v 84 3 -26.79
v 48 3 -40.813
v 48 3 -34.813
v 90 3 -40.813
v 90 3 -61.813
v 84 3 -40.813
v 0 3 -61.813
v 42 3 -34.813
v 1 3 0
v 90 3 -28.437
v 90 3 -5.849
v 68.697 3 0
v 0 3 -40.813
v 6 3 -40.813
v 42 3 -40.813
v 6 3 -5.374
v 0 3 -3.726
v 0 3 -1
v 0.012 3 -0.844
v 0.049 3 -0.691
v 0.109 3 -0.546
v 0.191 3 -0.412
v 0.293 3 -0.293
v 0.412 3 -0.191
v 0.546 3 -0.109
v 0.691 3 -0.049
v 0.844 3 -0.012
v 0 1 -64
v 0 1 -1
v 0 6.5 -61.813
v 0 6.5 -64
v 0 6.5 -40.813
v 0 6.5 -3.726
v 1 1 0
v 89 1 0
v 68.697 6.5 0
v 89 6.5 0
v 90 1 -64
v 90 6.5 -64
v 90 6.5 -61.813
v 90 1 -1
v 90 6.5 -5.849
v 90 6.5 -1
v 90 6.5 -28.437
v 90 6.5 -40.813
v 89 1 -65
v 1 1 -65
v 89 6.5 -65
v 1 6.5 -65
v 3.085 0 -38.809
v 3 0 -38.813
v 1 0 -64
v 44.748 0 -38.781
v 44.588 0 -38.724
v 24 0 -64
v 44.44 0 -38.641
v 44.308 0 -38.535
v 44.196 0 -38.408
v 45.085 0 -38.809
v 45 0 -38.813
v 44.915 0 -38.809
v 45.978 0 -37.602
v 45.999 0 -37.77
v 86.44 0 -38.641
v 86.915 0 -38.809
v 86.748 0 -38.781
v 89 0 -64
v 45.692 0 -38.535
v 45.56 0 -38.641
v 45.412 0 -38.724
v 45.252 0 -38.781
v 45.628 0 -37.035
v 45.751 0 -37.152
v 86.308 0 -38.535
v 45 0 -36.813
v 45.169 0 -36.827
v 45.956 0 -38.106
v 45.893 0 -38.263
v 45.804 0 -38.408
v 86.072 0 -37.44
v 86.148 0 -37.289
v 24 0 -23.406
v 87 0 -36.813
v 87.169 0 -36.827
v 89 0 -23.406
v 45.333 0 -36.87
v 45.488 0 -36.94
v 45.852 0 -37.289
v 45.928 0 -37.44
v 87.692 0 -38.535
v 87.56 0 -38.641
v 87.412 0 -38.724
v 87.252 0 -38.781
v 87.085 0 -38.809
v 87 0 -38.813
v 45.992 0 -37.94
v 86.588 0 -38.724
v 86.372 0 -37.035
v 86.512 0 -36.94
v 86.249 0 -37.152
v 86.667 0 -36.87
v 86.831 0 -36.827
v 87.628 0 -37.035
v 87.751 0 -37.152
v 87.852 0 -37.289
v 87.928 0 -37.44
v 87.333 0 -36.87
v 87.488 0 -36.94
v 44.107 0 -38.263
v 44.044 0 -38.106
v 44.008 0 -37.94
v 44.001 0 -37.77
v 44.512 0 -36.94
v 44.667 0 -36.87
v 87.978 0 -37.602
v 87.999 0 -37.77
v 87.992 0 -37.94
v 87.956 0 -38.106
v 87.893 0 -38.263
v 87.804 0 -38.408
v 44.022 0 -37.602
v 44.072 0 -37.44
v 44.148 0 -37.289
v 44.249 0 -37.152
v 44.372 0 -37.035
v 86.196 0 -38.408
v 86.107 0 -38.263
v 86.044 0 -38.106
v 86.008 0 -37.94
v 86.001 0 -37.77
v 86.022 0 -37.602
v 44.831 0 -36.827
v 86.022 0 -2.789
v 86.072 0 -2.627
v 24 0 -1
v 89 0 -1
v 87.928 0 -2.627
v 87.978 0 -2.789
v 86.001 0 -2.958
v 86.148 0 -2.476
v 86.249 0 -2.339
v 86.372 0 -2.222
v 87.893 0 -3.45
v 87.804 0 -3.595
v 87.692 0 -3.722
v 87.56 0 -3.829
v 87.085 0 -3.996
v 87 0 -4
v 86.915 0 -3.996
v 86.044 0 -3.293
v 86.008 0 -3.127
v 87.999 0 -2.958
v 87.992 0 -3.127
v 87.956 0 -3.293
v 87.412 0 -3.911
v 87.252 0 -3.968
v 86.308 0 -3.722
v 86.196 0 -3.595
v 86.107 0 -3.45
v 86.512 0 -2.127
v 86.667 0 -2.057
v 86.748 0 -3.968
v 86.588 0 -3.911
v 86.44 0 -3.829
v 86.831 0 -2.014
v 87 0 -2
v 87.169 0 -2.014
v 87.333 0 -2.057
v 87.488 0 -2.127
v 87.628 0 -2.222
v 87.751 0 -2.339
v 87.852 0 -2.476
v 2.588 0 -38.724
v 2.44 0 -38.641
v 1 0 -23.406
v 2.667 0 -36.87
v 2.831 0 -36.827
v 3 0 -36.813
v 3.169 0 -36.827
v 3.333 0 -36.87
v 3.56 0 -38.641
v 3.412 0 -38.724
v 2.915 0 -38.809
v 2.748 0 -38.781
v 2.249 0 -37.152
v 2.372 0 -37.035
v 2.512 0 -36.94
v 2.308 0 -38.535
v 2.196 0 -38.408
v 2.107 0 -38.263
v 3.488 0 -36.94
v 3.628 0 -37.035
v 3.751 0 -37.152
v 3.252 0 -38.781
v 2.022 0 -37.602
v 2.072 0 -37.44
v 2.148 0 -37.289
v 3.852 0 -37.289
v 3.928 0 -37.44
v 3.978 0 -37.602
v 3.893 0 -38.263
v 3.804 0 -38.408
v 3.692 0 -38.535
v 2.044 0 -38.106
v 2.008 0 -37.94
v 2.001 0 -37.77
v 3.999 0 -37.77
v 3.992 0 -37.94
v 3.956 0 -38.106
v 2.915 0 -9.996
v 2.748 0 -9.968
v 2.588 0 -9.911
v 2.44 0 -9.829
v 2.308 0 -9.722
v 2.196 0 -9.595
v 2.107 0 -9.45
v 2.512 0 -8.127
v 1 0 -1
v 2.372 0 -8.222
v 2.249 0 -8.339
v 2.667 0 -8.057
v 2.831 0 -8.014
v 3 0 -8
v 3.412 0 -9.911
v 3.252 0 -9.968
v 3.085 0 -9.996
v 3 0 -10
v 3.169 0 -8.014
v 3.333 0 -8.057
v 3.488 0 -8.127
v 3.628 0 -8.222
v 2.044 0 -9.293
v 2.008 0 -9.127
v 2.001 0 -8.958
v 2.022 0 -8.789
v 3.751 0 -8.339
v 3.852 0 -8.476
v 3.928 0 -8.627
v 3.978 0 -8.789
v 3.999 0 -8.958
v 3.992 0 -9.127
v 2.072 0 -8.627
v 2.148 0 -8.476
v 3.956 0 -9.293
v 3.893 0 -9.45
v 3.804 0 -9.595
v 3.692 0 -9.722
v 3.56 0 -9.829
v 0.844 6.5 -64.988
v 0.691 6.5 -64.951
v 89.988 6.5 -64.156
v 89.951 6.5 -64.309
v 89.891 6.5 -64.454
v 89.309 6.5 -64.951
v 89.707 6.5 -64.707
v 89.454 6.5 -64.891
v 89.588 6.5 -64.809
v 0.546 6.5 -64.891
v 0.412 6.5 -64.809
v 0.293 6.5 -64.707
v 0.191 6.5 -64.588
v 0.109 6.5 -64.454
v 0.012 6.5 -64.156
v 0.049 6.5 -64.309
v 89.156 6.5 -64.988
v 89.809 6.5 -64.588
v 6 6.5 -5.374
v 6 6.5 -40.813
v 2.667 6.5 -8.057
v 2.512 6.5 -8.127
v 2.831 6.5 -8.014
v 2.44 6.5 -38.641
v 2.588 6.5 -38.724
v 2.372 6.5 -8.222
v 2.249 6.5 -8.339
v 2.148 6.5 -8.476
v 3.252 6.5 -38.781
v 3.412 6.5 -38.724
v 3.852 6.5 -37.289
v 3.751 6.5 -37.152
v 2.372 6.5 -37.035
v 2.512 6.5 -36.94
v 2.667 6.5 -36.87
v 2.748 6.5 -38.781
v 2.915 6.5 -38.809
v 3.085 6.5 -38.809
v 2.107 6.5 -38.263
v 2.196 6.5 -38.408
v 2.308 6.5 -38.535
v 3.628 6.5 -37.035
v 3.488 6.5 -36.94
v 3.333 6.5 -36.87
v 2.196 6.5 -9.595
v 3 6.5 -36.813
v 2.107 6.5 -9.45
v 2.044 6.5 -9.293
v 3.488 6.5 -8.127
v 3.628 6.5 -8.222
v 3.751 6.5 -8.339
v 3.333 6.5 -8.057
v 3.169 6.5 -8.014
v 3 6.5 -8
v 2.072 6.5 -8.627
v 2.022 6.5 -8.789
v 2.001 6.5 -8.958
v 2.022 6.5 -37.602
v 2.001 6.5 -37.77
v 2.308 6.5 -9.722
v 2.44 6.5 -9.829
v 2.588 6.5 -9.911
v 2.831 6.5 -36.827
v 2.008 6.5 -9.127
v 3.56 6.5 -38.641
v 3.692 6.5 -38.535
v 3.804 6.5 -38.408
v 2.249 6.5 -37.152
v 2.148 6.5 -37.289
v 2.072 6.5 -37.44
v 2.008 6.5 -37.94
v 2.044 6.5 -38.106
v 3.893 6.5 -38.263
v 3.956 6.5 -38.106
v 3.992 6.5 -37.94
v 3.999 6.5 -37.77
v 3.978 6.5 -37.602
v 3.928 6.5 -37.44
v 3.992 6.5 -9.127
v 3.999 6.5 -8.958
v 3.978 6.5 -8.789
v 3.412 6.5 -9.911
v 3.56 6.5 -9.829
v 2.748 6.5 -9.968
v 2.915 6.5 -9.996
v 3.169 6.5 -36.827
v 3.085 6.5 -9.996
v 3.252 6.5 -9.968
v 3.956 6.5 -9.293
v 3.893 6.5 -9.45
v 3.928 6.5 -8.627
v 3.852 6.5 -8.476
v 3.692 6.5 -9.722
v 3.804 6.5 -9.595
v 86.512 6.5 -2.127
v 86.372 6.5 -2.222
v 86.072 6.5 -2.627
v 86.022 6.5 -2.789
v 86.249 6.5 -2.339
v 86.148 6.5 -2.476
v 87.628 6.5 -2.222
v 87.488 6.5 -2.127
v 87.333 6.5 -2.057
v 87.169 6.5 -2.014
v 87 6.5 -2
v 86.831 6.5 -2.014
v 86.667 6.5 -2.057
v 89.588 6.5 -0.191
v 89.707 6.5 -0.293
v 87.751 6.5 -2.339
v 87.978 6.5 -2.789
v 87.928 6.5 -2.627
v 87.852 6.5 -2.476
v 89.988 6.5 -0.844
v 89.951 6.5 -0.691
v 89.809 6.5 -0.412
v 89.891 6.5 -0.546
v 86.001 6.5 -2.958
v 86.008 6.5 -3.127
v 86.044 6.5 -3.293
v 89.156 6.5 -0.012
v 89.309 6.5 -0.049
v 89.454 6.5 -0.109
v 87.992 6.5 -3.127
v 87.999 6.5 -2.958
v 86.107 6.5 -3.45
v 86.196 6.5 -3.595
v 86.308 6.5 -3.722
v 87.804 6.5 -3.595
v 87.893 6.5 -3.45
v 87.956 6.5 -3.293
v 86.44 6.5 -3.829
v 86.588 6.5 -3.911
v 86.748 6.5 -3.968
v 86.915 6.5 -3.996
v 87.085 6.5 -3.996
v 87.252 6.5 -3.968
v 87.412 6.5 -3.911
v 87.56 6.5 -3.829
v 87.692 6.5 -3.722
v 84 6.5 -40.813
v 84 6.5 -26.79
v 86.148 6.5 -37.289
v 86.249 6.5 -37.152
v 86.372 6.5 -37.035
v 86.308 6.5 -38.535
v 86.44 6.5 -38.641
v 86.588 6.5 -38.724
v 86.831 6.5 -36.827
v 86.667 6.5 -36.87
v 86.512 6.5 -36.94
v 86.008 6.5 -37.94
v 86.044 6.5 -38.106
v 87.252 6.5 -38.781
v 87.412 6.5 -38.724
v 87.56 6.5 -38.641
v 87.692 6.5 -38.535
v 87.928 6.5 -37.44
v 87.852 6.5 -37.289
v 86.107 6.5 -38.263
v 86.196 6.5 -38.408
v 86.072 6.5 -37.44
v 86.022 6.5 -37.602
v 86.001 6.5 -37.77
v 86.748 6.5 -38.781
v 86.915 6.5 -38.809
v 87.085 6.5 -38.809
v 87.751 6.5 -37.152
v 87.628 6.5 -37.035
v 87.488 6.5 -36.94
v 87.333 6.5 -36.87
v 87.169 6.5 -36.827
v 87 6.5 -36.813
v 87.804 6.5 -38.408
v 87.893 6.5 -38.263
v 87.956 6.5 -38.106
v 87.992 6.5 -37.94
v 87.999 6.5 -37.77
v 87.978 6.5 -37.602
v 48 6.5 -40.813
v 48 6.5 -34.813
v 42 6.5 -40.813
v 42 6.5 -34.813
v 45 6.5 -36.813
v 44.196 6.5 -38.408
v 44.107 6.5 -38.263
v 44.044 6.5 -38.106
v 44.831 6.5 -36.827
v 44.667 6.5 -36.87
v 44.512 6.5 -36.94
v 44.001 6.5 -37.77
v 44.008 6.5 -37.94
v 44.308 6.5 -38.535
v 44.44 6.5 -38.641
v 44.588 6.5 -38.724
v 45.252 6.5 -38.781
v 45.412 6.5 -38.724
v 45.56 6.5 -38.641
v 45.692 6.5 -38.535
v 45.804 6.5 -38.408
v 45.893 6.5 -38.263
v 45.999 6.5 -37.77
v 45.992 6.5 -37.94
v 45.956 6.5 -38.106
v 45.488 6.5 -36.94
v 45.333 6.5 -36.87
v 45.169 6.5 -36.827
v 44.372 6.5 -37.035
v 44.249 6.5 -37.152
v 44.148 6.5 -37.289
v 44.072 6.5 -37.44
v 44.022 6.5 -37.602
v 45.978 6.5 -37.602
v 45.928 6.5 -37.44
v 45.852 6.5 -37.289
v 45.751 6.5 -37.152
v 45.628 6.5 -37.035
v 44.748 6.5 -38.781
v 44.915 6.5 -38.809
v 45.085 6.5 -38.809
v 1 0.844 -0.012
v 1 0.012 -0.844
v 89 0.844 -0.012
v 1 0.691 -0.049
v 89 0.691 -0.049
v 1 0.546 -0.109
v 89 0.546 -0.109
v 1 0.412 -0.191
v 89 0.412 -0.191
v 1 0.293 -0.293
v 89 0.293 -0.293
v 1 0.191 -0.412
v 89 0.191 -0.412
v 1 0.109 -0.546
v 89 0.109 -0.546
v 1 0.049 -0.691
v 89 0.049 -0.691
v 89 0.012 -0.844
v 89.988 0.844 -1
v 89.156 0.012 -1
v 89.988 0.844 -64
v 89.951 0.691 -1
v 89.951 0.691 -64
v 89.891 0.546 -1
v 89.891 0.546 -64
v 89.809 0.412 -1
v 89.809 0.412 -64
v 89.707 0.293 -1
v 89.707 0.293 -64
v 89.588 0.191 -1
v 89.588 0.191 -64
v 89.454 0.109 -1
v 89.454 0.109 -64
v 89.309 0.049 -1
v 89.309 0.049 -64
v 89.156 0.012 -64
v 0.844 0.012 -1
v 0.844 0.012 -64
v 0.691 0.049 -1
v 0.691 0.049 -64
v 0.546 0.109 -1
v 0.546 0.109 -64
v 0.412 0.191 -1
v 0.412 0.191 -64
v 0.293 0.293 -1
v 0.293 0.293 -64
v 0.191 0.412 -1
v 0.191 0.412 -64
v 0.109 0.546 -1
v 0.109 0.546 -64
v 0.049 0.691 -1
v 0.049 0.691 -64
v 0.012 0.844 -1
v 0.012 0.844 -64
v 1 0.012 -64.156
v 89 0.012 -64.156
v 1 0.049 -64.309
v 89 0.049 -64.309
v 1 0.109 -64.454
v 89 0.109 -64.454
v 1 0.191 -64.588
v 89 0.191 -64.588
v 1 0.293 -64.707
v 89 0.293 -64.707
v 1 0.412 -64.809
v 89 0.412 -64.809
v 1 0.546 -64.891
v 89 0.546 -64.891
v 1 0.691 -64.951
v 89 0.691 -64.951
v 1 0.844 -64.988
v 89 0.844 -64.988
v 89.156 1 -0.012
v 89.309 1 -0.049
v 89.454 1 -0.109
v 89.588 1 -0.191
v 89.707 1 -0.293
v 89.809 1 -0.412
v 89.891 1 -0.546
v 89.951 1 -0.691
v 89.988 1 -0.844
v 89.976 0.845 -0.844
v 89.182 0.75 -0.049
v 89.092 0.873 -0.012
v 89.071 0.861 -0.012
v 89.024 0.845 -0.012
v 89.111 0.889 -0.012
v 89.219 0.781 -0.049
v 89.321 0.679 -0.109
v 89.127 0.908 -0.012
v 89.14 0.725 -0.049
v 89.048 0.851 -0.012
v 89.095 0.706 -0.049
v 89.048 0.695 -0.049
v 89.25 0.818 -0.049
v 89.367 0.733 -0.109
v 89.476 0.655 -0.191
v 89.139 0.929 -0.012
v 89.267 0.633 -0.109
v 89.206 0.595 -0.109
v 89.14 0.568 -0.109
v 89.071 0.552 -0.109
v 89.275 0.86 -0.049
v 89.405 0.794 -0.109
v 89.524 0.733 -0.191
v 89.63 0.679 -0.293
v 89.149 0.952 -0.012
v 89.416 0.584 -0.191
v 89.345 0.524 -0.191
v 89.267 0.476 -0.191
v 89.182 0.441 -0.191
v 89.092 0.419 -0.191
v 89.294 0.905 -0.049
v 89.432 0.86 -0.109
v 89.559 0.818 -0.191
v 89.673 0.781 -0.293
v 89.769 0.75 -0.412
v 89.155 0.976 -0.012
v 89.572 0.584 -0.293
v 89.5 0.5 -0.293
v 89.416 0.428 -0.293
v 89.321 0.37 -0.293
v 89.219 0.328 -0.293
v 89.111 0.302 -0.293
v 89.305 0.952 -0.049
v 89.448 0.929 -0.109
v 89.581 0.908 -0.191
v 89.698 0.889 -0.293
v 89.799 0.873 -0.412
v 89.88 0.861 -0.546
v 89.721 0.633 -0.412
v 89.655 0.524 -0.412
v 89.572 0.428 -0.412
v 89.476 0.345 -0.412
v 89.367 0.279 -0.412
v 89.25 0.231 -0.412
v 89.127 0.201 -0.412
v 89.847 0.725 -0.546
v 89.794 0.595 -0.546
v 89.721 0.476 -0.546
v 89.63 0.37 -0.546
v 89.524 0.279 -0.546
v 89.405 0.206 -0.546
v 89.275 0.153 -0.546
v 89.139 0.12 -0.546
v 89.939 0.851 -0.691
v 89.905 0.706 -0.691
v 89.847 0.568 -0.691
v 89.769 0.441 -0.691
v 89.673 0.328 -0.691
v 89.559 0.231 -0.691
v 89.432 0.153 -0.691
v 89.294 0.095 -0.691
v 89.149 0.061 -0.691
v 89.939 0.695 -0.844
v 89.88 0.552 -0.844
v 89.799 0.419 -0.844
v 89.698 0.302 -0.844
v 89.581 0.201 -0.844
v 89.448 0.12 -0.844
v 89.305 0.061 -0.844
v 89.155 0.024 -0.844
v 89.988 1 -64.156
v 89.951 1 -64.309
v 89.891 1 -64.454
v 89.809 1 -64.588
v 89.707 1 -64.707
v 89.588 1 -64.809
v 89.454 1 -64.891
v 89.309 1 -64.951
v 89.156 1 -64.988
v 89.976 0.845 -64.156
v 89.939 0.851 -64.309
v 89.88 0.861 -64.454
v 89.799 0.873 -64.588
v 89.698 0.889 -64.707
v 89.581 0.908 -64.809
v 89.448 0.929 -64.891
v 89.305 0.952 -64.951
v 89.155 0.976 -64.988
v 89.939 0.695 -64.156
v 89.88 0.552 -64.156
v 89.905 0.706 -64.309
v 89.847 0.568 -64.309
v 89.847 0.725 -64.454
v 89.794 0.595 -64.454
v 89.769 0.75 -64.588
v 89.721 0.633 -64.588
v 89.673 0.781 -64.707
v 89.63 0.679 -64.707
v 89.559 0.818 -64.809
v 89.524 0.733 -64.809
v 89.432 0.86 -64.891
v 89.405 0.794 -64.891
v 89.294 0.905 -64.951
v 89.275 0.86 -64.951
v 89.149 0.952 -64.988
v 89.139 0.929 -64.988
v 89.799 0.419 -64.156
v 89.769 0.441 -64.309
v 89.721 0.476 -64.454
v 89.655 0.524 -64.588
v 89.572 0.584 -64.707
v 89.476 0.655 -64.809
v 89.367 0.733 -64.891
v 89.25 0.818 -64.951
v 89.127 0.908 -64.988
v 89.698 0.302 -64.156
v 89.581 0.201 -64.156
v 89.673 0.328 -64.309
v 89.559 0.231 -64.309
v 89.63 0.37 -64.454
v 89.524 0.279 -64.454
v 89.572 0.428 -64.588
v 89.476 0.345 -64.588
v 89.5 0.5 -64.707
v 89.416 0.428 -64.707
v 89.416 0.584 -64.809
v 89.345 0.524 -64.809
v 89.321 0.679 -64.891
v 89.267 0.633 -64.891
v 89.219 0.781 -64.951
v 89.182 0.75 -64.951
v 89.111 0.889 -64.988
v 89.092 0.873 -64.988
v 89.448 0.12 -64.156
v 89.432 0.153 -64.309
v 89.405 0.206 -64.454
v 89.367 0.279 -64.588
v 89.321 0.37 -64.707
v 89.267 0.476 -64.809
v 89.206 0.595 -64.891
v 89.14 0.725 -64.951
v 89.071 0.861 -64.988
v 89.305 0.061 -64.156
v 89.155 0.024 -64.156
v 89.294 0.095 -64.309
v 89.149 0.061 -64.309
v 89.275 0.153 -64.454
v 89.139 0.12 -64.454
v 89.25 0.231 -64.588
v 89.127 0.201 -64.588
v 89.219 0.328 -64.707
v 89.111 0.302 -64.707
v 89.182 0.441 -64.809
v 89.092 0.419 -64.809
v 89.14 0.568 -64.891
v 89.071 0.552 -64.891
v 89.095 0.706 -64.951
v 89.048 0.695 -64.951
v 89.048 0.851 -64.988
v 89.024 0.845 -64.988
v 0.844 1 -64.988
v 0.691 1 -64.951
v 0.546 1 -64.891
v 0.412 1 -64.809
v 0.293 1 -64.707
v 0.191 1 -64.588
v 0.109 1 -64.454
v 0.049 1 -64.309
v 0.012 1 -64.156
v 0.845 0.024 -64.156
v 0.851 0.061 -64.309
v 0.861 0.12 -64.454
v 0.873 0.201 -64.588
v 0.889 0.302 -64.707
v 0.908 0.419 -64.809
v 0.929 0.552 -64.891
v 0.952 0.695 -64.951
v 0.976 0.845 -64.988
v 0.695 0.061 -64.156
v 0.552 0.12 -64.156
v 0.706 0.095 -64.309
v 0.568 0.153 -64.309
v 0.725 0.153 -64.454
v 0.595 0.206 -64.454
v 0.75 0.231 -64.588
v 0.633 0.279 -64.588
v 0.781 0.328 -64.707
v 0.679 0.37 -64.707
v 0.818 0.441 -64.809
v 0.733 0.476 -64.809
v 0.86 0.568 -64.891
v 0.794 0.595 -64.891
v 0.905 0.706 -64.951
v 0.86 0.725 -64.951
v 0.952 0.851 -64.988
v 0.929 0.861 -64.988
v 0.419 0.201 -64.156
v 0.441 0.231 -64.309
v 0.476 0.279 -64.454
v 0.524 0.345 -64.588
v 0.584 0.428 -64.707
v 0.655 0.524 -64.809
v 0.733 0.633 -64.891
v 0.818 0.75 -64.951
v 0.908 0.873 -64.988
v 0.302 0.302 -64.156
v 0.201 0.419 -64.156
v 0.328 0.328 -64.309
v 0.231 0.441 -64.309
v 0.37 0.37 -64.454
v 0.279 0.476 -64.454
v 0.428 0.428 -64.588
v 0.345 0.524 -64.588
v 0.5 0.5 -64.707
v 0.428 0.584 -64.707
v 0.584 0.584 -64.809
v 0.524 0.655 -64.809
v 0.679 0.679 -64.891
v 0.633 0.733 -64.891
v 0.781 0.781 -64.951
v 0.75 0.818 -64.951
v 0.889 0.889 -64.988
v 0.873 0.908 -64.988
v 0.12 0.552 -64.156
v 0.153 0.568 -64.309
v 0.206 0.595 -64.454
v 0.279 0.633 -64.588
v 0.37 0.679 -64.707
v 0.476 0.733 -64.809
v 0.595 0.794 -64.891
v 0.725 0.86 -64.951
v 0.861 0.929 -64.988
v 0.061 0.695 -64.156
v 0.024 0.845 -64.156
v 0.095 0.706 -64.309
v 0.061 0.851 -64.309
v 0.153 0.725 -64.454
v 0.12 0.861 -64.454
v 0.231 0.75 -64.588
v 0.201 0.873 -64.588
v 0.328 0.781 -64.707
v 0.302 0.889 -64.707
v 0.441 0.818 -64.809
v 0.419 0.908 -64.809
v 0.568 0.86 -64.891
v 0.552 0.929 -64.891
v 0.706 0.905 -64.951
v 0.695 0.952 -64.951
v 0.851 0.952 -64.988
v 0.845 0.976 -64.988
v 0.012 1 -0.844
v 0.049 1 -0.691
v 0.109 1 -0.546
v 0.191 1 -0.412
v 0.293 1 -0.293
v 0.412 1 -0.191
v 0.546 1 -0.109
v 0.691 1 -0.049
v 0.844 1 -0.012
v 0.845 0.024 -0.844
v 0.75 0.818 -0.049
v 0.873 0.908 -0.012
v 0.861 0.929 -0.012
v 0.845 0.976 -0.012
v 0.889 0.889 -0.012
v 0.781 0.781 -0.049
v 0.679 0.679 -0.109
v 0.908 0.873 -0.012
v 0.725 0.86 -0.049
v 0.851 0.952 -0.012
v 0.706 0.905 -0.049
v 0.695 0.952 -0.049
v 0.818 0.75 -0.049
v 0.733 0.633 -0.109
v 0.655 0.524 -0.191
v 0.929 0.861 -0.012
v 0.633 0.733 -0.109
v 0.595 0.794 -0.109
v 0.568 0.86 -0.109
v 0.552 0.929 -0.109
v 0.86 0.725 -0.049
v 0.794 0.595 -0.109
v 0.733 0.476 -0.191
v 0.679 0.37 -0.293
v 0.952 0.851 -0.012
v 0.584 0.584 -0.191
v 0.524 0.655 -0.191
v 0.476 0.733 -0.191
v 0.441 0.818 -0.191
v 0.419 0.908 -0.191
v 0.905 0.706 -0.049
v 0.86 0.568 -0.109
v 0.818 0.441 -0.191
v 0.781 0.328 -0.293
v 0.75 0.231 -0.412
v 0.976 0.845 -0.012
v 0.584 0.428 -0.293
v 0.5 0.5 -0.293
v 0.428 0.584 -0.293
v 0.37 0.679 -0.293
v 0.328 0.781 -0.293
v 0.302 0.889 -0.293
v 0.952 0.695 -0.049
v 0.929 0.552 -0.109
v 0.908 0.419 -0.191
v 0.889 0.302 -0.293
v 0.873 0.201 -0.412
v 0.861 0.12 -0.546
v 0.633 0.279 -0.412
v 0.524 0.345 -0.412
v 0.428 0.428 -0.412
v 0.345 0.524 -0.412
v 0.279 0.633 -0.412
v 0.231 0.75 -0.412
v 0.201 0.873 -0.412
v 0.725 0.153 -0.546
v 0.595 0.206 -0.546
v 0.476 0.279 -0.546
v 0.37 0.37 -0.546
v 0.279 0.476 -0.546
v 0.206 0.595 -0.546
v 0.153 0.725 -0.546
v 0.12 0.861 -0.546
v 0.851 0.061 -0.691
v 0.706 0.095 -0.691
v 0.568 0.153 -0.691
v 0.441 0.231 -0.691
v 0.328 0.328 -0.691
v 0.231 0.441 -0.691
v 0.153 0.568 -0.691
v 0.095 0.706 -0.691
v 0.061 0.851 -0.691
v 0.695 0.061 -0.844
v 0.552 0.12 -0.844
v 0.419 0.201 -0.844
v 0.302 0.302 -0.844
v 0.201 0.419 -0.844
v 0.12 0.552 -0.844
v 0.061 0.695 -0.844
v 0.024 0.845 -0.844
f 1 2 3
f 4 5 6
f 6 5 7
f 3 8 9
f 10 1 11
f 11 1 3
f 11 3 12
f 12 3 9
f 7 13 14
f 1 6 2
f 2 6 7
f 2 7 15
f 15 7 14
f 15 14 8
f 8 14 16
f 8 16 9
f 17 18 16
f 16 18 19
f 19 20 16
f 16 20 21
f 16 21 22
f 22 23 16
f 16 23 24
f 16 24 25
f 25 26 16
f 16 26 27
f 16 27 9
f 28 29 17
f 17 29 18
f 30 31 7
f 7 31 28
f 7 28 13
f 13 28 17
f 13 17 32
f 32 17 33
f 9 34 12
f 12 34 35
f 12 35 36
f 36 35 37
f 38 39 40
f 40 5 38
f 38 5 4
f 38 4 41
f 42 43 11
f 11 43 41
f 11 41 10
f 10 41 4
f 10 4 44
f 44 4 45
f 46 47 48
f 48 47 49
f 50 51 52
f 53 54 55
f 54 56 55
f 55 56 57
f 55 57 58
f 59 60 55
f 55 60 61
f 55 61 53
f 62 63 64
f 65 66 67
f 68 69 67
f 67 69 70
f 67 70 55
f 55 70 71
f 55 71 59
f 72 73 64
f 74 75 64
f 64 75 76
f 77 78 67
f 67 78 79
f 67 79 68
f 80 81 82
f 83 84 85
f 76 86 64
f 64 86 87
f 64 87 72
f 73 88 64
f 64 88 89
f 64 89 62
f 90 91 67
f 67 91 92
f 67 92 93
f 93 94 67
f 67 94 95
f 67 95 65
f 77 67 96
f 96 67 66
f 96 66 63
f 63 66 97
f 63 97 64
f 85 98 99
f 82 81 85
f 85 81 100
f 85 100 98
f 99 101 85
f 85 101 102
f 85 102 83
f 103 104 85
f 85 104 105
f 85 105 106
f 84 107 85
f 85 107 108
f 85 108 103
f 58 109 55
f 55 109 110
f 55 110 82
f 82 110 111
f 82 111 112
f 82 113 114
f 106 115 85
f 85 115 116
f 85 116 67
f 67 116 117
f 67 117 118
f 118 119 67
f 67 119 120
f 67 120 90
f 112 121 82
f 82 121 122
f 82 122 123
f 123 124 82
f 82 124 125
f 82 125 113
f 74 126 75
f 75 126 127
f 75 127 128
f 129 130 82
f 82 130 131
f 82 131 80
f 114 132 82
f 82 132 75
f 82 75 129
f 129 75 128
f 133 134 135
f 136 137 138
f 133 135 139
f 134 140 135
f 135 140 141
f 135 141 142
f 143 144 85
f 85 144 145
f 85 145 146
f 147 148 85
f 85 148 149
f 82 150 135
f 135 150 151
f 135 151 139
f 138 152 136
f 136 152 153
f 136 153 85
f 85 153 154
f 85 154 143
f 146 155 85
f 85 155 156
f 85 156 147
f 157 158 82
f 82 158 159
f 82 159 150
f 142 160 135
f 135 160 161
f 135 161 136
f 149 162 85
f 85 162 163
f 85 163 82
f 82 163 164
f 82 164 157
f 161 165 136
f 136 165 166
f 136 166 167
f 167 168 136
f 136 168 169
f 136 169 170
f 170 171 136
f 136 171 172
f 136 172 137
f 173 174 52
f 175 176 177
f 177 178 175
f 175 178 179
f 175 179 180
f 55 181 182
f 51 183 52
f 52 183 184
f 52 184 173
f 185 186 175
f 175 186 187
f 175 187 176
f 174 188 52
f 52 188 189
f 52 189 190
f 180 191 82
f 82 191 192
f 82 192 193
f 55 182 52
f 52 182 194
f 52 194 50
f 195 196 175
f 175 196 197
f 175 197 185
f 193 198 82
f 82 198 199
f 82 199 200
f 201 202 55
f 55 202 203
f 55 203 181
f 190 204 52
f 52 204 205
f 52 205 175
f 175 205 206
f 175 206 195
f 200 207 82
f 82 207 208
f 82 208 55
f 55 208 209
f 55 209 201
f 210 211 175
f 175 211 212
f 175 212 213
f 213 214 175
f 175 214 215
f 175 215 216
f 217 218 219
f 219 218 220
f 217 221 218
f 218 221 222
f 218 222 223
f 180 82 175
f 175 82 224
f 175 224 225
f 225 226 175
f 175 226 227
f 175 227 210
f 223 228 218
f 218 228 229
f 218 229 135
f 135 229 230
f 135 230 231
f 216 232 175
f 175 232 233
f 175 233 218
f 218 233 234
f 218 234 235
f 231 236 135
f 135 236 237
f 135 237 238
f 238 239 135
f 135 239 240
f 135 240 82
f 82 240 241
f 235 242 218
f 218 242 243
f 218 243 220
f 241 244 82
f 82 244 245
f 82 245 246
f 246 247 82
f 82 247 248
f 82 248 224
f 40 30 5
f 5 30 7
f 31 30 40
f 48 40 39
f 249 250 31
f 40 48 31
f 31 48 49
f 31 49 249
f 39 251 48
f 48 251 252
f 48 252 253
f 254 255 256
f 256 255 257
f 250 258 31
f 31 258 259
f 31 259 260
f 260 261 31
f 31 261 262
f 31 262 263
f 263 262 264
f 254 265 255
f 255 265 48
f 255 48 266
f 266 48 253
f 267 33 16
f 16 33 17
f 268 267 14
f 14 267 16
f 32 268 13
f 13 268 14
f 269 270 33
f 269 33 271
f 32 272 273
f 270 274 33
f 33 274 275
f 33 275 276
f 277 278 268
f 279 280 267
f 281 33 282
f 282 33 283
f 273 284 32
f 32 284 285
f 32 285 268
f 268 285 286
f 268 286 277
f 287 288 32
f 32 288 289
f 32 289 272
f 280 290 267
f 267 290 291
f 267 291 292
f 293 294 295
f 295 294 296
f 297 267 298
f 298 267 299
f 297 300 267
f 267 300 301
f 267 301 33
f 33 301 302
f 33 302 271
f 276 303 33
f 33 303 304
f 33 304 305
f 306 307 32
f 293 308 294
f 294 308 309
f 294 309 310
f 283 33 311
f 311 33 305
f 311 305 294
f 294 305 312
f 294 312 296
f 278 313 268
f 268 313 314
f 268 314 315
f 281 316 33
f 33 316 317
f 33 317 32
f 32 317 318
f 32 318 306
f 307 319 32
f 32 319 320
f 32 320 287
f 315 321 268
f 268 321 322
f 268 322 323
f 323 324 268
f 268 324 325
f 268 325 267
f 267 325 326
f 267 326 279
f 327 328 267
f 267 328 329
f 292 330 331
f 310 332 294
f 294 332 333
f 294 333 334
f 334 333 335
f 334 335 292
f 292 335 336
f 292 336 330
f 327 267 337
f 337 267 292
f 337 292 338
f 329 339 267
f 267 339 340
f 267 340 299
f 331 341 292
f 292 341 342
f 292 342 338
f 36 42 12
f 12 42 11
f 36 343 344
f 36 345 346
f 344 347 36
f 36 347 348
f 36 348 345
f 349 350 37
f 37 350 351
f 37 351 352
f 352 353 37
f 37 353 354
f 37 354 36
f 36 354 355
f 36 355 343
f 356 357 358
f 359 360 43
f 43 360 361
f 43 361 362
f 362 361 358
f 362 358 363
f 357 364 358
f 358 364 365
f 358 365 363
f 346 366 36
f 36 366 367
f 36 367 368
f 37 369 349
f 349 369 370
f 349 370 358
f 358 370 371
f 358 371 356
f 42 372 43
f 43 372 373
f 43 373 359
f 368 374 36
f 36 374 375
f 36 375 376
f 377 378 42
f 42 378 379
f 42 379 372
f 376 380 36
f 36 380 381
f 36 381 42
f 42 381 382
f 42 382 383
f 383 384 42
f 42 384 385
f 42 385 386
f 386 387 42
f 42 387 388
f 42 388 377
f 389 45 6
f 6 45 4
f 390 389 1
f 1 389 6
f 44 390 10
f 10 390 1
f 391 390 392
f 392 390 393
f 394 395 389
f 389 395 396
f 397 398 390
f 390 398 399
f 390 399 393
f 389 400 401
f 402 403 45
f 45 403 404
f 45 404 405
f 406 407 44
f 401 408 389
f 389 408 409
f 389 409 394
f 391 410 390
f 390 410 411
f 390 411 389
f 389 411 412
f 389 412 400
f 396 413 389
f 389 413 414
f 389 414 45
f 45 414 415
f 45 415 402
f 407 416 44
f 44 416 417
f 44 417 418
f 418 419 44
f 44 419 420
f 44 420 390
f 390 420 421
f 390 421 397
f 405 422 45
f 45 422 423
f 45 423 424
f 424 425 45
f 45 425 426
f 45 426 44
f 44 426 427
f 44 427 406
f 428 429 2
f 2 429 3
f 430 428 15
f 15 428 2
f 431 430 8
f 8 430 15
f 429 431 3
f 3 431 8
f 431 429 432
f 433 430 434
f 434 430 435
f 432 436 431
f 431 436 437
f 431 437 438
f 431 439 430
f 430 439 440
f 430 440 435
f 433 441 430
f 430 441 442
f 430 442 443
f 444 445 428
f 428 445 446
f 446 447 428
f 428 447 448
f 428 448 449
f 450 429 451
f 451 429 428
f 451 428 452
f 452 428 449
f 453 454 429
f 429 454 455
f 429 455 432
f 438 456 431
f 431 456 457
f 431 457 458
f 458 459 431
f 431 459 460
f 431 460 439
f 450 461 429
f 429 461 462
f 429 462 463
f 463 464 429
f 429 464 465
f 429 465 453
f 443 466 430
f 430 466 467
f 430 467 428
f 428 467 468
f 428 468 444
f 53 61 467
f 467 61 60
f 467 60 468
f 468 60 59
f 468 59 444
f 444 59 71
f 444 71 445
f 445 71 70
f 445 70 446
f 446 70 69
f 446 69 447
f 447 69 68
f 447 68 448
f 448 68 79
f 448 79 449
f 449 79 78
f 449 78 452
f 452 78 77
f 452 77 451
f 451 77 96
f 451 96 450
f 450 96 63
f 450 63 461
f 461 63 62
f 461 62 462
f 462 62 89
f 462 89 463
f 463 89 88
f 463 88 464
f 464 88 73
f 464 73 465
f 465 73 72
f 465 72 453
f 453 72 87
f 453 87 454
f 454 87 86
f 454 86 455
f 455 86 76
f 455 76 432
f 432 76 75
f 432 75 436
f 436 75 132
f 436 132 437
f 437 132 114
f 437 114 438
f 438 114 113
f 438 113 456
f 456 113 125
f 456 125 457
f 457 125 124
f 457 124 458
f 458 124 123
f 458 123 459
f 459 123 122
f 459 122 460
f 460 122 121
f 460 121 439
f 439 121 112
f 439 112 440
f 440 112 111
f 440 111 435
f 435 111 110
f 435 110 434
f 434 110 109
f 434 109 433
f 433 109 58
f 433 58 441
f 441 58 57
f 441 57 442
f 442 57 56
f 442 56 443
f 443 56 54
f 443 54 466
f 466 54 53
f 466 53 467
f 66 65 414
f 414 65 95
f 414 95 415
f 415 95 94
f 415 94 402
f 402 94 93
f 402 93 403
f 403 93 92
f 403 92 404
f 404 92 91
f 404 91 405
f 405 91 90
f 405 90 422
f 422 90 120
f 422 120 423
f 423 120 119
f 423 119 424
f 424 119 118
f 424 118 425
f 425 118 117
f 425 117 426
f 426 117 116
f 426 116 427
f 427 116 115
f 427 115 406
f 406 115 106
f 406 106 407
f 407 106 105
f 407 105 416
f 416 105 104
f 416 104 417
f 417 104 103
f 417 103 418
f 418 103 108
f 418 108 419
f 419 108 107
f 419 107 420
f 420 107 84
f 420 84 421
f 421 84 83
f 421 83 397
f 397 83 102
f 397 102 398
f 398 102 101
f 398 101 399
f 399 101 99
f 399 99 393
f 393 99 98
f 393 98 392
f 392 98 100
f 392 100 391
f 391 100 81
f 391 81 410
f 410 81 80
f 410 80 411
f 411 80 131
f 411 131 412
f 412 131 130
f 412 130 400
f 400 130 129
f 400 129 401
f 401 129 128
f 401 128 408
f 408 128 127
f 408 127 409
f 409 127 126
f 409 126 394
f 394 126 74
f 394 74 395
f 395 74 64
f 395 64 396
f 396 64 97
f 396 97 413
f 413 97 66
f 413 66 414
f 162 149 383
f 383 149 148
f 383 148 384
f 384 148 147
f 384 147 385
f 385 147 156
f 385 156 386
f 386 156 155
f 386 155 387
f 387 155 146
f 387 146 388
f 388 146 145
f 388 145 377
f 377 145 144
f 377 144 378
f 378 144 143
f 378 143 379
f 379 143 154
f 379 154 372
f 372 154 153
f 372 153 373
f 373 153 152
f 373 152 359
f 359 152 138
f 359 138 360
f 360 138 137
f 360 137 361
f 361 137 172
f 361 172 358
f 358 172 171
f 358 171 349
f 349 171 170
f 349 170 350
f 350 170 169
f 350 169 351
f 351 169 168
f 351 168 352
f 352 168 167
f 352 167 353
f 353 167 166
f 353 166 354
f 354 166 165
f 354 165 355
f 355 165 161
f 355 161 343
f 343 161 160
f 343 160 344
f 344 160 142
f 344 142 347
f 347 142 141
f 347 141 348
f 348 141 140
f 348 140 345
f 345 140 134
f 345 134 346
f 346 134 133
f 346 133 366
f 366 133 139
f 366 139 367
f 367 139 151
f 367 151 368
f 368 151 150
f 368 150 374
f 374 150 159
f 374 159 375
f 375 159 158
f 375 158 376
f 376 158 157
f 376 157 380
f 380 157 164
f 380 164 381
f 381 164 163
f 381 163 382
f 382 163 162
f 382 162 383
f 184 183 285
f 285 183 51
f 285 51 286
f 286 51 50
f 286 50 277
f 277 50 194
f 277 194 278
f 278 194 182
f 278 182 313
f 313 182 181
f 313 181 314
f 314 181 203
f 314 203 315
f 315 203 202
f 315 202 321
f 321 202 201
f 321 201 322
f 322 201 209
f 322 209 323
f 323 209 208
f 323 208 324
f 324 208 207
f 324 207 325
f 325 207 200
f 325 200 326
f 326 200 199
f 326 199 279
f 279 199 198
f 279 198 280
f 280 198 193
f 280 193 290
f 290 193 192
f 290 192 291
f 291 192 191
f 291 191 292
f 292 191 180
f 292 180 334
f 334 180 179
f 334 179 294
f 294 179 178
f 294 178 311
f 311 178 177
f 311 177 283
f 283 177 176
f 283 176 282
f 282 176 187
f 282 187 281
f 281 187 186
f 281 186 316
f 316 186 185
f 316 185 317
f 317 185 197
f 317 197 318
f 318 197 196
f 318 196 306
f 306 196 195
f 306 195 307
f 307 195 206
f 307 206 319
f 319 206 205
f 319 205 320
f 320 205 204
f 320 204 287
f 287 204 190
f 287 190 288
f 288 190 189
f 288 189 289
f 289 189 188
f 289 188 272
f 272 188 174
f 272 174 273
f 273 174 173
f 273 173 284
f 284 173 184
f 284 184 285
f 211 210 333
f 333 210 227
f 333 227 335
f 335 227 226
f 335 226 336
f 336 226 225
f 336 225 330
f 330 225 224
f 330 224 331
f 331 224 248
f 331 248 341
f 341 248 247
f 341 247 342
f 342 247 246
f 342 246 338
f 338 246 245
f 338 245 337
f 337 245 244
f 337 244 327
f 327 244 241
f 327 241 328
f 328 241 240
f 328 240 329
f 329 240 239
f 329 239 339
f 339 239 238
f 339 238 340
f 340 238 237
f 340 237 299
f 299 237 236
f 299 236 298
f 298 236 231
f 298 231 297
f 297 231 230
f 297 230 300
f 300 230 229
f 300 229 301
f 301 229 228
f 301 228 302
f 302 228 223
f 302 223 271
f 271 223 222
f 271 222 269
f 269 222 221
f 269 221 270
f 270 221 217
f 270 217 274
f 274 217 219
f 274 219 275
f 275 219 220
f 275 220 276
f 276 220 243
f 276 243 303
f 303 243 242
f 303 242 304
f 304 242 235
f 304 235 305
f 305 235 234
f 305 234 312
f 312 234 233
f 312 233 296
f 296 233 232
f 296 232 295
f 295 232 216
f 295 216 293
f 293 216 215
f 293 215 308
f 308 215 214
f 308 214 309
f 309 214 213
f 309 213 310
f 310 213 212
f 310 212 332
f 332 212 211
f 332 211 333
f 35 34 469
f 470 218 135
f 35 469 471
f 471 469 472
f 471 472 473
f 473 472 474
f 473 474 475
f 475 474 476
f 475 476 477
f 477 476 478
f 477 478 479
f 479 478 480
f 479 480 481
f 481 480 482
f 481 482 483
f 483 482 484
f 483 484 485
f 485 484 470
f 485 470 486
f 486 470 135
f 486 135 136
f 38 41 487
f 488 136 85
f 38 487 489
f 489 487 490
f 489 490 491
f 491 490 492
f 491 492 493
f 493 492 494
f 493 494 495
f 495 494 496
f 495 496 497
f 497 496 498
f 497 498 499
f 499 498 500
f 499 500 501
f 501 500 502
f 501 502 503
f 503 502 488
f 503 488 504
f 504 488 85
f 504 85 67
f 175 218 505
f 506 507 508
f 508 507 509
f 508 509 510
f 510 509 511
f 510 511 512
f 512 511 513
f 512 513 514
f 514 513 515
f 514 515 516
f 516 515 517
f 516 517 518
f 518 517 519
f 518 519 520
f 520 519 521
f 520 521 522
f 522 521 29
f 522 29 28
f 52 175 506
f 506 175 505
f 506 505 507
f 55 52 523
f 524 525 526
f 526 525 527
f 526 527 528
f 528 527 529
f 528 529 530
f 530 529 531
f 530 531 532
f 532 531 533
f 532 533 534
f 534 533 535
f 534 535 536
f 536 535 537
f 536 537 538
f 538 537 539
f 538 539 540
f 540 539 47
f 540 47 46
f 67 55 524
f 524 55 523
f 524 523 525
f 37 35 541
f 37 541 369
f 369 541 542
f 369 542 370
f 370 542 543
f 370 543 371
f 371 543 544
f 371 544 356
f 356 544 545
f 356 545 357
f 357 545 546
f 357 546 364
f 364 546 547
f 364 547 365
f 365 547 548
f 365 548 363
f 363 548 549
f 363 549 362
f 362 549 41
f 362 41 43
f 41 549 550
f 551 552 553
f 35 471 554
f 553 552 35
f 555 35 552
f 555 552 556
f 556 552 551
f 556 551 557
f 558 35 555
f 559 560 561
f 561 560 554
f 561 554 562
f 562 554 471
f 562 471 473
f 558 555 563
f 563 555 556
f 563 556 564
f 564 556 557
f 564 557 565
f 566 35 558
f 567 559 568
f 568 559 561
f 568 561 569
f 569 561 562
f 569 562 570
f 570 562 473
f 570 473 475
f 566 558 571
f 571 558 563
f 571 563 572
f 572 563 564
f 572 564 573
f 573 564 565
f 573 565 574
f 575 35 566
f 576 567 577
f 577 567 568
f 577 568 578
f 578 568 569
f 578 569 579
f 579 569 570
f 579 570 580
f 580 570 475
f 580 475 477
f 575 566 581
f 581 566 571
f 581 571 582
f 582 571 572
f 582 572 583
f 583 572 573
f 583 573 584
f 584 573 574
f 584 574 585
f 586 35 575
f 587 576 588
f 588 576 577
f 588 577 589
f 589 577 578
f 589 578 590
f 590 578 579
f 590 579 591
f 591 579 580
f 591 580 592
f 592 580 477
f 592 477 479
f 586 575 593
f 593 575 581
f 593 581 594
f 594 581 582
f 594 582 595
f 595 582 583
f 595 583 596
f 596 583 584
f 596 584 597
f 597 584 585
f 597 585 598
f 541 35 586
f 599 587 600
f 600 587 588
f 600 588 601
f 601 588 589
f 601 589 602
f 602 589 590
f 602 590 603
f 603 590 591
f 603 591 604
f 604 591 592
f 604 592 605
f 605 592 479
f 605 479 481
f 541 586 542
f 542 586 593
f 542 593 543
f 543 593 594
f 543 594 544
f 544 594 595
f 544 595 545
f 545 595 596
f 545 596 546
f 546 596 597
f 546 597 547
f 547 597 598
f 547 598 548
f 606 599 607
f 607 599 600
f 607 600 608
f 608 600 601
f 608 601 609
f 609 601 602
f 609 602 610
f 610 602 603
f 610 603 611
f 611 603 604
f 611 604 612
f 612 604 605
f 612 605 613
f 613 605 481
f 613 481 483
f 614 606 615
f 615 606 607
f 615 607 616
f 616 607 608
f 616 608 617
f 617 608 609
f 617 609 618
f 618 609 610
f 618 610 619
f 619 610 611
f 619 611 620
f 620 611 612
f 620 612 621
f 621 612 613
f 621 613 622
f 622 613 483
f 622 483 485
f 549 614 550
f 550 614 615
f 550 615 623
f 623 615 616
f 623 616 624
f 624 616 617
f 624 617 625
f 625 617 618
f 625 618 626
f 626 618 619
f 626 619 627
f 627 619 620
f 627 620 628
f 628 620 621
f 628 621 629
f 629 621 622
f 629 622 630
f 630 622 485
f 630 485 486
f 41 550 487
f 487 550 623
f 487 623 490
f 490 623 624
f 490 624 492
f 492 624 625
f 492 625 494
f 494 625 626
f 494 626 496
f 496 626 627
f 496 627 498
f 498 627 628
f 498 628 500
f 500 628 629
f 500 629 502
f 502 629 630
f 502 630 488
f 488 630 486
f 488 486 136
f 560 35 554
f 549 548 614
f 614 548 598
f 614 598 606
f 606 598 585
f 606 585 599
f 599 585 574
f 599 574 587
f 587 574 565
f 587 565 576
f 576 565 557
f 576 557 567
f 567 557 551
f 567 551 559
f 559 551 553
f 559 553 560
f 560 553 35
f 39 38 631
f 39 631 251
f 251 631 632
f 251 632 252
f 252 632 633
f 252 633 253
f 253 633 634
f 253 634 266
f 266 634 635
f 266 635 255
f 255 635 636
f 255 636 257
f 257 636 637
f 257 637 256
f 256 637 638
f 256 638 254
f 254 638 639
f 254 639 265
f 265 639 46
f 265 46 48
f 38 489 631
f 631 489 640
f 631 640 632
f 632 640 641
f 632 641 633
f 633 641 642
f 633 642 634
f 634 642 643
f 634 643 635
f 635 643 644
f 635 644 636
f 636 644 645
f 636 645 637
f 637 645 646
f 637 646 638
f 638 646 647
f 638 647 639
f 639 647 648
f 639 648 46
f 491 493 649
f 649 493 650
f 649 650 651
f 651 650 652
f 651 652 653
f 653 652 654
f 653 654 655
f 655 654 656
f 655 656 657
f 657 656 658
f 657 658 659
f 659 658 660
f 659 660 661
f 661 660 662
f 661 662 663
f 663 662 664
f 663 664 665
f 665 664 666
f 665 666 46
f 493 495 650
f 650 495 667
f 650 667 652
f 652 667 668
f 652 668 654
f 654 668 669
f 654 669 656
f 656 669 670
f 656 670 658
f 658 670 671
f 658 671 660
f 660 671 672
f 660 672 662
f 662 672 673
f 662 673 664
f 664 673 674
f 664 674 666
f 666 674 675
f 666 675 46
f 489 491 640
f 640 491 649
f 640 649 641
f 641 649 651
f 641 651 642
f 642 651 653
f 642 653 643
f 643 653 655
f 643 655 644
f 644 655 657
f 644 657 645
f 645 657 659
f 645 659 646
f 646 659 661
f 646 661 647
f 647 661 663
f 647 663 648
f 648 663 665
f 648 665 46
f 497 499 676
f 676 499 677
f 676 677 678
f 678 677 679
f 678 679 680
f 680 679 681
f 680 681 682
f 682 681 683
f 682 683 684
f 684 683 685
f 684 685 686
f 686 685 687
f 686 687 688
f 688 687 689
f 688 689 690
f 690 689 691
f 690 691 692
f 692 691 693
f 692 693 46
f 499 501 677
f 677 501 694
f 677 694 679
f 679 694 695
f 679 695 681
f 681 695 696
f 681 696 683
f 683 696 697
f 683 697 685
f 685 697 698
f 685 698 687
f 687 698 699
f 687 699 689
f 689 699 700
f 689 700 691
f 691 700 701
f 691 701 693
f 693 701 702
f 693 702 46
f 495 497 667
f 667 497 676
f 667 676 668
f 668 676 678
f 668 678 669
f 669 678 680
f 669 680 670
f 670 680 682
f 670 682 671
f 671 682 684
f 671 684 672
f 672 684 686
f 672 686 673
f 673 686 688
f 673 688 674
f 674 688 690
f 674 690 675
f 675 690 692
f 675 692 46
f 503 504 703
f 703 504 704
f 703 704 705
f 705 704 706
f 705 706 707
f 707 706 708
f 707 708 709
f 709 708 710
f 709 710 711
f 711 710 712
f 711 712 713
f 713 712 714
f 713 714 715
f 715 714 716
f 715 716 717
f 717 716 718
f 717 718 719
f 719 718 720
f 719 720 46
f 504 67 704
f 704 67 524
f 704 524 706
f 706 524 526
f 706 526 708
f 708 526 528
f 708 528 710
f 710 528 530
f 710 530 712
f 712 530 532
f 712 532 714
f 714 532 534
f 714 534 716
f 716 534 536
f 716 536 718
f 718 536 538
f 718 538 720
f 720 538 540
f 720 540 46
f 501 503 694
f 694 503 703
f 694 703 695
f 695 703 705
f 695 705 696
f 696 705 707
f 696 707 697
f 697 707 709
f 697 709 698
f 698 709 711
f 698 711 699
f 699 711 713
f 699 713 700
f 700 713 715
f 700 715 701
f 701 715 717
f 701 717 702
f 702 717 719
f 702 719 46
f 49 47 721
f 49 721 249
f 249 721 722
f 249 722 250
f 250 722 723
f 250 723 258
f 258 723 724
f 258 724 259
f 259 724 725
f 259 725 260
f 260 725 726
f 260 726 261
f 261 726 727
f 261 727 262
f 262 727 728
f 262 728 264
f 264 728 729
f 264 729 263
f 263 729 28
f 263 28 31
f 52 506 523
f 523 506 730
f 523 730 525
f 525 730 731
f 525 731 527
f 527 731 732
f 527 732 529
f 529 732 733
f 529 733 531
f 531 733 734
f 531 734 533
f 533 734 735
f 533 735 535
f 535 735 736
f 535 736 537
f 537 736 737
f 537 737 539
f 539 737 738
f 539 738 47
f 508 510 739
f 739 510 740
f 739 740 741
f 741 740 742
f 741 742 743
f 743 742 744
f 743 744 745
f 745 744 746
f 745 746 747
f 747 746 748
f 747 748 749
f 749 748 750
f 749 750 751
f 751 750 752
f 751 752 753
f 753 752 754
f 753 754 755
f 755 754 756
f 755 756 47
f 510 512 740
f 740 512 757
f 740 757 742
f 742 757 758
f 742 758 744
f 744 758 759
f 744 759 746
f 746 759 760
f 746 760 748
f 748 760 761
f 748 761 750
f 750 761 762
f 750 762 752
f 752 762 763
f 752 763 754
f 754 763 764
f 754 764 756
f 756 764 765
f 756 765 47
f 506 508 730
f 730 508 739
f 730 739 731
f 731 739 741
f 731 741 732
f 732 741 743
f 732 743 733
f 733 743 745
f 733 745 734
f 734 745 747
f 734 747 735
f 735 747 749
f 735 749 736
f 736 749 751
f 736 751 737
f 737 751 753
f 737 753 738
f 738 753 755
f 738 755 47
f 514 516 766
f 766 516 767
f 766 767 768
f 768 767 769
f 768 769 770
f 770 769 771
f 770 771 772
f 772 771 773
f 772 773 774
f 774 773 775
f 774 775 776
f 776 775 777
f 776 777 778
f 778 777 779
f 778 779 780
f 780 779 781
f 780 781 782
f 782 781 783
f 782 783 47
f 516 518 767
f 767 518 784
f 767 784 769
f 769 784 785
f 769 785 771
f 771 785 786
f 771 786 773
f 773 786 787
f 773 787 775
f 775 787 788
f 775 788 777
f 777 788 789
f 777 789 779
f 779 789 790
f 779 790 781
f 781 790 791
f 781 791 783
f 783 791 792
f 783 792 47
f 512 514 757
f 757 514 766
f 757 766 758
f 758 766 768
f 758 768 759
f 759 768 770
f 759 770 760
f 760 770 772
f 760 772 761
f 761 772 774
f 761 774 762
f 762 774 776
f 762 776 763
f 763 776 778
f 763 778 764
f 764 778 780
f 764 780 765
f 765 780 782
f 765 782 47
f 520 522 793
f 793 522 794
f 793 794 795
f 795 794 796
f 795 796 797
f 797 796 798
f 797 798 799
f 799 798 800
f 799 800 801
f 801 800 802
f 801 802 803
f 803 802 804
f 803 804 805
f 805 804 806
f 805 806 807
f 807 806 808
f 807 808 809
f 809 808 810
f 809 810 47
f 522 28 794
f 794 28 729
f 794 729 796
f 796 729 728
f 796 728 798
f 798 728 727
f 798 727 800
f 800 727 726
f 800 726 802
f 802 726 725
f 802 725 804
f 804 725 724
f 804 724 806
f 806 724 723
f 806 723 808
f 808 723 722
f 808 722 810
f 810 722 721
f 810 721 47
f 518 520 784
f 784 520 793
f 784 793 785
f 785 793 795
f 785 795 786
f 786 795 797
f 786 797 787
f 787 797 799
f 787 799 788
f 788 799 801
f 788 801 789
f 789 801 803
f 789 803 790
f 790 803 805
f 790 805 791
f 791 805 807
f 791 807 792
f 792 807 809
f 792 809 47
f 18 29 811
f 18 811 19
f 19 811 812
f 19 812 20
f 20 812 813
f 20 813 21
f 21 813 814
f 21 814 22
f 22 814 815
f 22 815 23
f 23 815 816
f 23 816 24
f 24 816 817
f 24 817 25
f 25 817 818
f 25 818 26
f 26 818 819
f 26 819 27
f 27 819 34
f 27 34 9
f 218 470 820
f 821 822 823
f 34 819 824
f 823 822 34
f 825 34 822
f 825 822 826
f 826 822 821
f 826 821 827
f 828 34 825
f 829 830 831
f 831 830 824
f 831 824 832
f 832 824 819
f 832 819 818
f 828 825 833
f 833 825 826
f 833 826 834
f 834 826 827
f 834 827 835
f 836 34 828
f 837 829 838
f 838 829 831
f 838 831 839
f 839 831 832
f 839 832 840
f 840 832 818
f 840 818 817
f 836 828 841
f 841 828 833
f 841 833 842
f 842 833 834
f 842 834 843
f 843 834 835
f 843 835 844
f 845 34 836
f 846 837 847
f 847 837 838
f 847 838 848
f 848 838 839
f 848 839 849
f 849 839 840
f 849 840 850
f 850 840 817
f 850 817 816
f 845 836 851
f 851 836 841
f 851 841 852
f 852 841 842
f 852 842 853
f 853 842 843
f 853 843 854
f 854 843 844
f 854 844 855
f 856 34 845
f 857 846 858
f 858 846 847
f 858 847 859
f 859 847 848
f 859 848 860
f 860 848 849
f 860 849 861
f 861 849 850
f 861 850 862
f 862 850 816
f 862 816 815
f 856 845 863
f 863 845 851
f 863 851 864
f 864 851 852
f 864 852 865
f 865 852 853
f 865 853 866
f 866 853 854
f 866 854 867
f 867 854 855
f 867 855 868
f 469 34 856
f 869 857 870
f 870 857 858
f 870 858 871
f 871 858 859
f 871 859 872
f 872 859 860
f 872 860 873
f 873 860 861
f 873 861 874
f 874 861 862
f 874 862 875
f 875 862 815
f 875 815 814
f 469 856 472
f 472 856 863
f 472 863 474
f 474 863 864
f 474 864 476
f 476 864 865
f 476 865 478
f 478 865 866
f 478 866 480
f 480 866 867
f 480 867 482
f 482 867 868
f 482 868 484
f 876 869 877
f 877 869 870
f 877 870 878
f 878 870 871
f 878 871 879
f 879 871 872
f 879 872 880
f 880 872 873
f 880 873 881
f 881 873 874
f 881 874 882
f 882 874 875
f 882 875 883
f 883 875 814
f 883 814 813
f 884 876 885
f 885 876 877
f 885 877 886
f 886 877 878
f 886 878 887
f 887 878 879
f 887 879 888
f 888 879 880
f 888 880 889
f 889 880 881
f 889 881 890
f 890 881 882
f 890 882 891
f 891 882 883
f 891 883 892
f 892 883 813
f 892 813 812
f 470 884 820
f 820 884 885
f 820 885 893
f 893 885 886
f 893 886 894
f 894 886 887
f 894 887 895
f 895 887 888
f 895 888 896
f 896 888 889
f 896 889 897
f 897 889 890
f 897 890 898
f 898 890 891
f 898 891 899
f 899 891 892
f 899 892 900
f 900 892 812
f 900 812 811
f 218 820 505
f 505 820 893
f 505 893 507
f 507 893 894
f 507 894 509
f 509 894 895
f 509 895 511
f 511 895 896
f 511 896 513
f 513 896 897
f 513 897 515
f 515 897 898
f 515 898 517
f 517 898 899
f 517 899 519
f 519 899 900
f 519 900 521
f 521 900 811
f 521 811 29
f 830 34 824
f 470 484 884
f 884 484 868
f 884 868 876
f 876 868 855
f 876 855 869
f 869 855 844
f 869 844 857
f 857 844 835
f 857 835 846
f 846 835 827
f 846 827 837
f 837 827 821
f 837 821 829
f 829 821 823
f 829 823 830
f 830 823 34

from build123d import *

# Parameters (mm, degrees)
SKETCH1_W           = 90
SKETCH1_H           = 65
BOSS_EXTRUDE1_DEPTH = 3
SKETCH2_W           = 90
SKETCH2_H           = 3.187087834
SKETCH2_W_2         = 6
SKETCH2_H_2         = 6
BOSS_EXTRUDE2_DEPTH = 3.5
SKETCH3_R           = 1
CUT_EXTRUDE1_DEPTH  = 14.5
FILLET1_R           = 1
FILLET2_R           = 1


with BuildPart() as part:
    # Sketch1 → Boss-Extrude1 (new body)
    with BuildSketch(Plane(origin=(0, 0, 0), x_dir=(1, 0, 0), z_dir=(0, 1, 0))):
        with Locations((45, 32.5)):
            Rectangle(SKETCH1_W, SKETCH1_H)
    extrude(amount=BOSS_EXTRUDE1_DEPTH)

    # Sketch2 → Boss-Extrude2 (add)
    with BuildSketch(Plane(origin=(0, 3, 0), x_dir=(1, 0, 0), z_dir=(0, 1, 0))):
        with Locations((45, 63.406456083)):
            Rectangle(SKETCH2_W, SKETCH2_H)
        Polygon((0, 40.812912166), (6, 40.812912166), (6, 5.373702529), (4, 4.824577906), (0, 3.72632866), align=None)
        Polygon((90, 40.812912166), (84, 40.812912166), (84, 26.789562822), (86, 27.338687445), (90, 28.436936691), align=None)
        with Locations((45, 37.812912166)):
            Rectangle(SKETCH2_W_2, SKETCH2_H_2)
        Polygon((68.697463874, 0), (90, 5.848873559), (90, 0), align=None)
    extrude(amount=BOSS_EXTRUDE2_DEPTH)

    # Sketch3 → Cut-Extrude1 (cut)
    with BuildSketch(Plane(origin=(0, 6.5, 0), x_dir=(1, 0, 0), z_dir=(0, 1, 0))):
        with Locations(Location((45, 37.812912166, 0), (0, 0, 270))):
            Circle(SKETCH3_R)
        with Locations(Location((3, 37.812912166, 0), (0, 0, 270))):
            Circle(SKETCH3_R)
        with Locations(Location((3, 9, 0), (0, 0, 270))):
            Circle(SKETCH3_R)
        with Locations(Location((87, 37.812912166, 0), (0, 0, 270))):
            Circle(SKETCH3_R)
        with Locations(Location((87, 3, 0), (0, 0, 270))):
            Circle(SKETCH3_R)
    extrude(amount=-CUT_EXTRUDE1_DEPTH, mode=Mode.SUBTRACT)

    # Fillet1
    fillet1_edges = [part.edges().sort_by_distance(p)[0] for p in [
        (45, 0, -65),
        (90, 0, -32.5),
        (45, 0, 0),
        (0, 0, -32.5),
    ]]
    fillet(fillet1_edges, radius=FILLET1_R)

    # Fillet2
    # the kernel refuses this fillet: 1 mm, written as the material it takes off along each edge
    with BuildSketch(Plane(origin=(89, 1, -1), x_dir=(1, 0, 0), z_dir=(0, 0, 1))) as fillet2_piece_1_section:
        Polygon((0, 0), (FILLET2_R, 0), (FILLET2_R, -FILLET2_R), (0, -FILLET2_R), align=None)
    fillet2_piece_1 = extrude(amount=FILLET2_R, mode=Mode.PRIVATE)
    fillet2_piece_1 = fillet2_piece_1 - Plane(origin=(89, 1, -1), x_dir=(-0.7071067811865475, 0.7071067811865475, 0), z_dir=(0, 0, 1)) * Sphere(FILLET2_R, mode=Mode.PRIVATE)
    add(fillet2_piece_1, mode=Mode.SUBTRACT)
    with BuildSketch(Plane(origin=(1, 1, -1), x_dir=(-1, 0, 0), z_dir=(0, 0, 1))) as fillet2_piece_2_section:
        Polygon((0, 0), (FILLET2_R, 0), (FILLET2_R, FILLET2_R), (0, FILLET2_R), align=None)
    fillet2_piece_2 = extrude(amount=FILLET2_R, mode=Mode.PRIVATE)
    fillet2_piece_2 = fillet2_piece_2 - Plane(origin=(1, 1, -1), x_dir=(0.7071067811865475, 0.7071067811865475, 0), z_dir=(0, 0, 1)) * Sphere(FILLET2_R, mode=Mode.PRIVATE)
    add(fillet2_piece_2, mode=Mode.SUBTRACT)
    with BuildSketch(Plane(origin=(89, 1, -64), x_dir=(0, 0, -1), z_dir=(1, 0, 0))) as fillet2_piece_3_section:
        Polygon((0, 0), (FILLET2_R, 0), (FILLET2_R, -FILLET2_R), (0, -FILLET2_R), align=None)
    fillet2_piece_3 = extrude(amount=FILLET2_R, mode=Mode.PRIVATE)
    fillet2_piece_3 = fillet2_piece_3 - Plane(origin=(89, 1, -64), x_dir=(0, 0.7071067811865475, 0.7071067811865475), z_dir=(1, 0, 0)) * Sphere(FILLET2_R, mode=Mode.PRIVATE)
    add(fillet2_piece_3, mode=Mode.SUBTRACT)
    with BuildSketch(Plane(origin=(1, 1, -64), x_dir=(0, 0, -1), z_dir=(-1, 0, 0))) as fillet2_piece_4_section:
        Polygon((0, 0), (FILLET2_R, 0), (FILLET2_R, FILLET2_R), (0, FILLET2_R), align=None)
    fillet2_piece_4 = extrude(amount=FILLET2_R, mode=Mode.PRIVATE)
    fillet2_piece_4 = fillet2_piece_4 - Plane(origin=(1, 1, -64), x_dir=(0, 0.7071067811865475, 0.7071067811865475), z_dir=(-1, 0, 0)) * Sphere(FILLET2_R, mode=Mode.PRIVATE)
    add(fillet2_piece_4, mode=Mode.SUBTRACT)
    with BuildSketch(Plane(origin=(0, 9, -65), x_dir=(0, 0, 1), z_dir=(0, -1, 0)), Plane(origin=(90, 1, -65), x_dir=(0, 0, 1), z_dir=(0, 1, 0))) as fillet2_piece_5:
        with BuildLine():
            CenterArc((FILLET2_R, -FILLET2_R), FILLET2_R, 90, 90)
            Line((0, -FILLET2_R), (0, 0))
            Line((0, 0), (FILLET2_R, 0))
        make_face()
    extrude(amount=8, mode=Mode.SUBTRACT)
    with BuildSketch(Plane(origin=(90, 3, 0), x_dir=(-1.5916157280951914e-11, 0, -1.0), z_dir=(0, 1, 0))) as fillet2_piece_6:
        with BuildLine():
            CenterArc((FILLET2_R, FILLET2_R), FILLET2_R, 179.999999999, 90)
            Line((0, FILLET2_R), (0, 0))
            Line((0, 0), (FILLET2_R, 0))
        make_face()
    extrude(amount=6, mode=Mode.SUBTRACT)
    with BuildSketch(Plane(origin=(0, 1, 0), x_dir=(1, 0, 0), z_dir=(0, 1, 0))) as fillet2_piece_7:
        with BuildLine():
            CenterArc((FILLET2_R, FILLET2_R), FILLET2_R, 180, 90)
            Line((0, FILLET2_R), (0, 0))
            Line((0, 0), (FILLET2_R, 0))
        make_face()
    extrude(amount=4.5, mode=Mode.SUBTRACT)
    with BuildSketch(Plane(origin=(90, 1, 0), x_dir=(-1, 0, 0), z_dir=(0, 1, 0))) as fillet2_piece_8:
        with BuildLine():
            CenterArc((FILLET2_R, -FILLET2_R), FILLET2_R, 90, 90)
            Line((0, -FILLET2_R), (0, 0))
            Line((0, 0), (FILLET2_R, 0))
        make_face()
    extrude(amount=2, mode=Mode.SUBTRACT)


solid = part.part
